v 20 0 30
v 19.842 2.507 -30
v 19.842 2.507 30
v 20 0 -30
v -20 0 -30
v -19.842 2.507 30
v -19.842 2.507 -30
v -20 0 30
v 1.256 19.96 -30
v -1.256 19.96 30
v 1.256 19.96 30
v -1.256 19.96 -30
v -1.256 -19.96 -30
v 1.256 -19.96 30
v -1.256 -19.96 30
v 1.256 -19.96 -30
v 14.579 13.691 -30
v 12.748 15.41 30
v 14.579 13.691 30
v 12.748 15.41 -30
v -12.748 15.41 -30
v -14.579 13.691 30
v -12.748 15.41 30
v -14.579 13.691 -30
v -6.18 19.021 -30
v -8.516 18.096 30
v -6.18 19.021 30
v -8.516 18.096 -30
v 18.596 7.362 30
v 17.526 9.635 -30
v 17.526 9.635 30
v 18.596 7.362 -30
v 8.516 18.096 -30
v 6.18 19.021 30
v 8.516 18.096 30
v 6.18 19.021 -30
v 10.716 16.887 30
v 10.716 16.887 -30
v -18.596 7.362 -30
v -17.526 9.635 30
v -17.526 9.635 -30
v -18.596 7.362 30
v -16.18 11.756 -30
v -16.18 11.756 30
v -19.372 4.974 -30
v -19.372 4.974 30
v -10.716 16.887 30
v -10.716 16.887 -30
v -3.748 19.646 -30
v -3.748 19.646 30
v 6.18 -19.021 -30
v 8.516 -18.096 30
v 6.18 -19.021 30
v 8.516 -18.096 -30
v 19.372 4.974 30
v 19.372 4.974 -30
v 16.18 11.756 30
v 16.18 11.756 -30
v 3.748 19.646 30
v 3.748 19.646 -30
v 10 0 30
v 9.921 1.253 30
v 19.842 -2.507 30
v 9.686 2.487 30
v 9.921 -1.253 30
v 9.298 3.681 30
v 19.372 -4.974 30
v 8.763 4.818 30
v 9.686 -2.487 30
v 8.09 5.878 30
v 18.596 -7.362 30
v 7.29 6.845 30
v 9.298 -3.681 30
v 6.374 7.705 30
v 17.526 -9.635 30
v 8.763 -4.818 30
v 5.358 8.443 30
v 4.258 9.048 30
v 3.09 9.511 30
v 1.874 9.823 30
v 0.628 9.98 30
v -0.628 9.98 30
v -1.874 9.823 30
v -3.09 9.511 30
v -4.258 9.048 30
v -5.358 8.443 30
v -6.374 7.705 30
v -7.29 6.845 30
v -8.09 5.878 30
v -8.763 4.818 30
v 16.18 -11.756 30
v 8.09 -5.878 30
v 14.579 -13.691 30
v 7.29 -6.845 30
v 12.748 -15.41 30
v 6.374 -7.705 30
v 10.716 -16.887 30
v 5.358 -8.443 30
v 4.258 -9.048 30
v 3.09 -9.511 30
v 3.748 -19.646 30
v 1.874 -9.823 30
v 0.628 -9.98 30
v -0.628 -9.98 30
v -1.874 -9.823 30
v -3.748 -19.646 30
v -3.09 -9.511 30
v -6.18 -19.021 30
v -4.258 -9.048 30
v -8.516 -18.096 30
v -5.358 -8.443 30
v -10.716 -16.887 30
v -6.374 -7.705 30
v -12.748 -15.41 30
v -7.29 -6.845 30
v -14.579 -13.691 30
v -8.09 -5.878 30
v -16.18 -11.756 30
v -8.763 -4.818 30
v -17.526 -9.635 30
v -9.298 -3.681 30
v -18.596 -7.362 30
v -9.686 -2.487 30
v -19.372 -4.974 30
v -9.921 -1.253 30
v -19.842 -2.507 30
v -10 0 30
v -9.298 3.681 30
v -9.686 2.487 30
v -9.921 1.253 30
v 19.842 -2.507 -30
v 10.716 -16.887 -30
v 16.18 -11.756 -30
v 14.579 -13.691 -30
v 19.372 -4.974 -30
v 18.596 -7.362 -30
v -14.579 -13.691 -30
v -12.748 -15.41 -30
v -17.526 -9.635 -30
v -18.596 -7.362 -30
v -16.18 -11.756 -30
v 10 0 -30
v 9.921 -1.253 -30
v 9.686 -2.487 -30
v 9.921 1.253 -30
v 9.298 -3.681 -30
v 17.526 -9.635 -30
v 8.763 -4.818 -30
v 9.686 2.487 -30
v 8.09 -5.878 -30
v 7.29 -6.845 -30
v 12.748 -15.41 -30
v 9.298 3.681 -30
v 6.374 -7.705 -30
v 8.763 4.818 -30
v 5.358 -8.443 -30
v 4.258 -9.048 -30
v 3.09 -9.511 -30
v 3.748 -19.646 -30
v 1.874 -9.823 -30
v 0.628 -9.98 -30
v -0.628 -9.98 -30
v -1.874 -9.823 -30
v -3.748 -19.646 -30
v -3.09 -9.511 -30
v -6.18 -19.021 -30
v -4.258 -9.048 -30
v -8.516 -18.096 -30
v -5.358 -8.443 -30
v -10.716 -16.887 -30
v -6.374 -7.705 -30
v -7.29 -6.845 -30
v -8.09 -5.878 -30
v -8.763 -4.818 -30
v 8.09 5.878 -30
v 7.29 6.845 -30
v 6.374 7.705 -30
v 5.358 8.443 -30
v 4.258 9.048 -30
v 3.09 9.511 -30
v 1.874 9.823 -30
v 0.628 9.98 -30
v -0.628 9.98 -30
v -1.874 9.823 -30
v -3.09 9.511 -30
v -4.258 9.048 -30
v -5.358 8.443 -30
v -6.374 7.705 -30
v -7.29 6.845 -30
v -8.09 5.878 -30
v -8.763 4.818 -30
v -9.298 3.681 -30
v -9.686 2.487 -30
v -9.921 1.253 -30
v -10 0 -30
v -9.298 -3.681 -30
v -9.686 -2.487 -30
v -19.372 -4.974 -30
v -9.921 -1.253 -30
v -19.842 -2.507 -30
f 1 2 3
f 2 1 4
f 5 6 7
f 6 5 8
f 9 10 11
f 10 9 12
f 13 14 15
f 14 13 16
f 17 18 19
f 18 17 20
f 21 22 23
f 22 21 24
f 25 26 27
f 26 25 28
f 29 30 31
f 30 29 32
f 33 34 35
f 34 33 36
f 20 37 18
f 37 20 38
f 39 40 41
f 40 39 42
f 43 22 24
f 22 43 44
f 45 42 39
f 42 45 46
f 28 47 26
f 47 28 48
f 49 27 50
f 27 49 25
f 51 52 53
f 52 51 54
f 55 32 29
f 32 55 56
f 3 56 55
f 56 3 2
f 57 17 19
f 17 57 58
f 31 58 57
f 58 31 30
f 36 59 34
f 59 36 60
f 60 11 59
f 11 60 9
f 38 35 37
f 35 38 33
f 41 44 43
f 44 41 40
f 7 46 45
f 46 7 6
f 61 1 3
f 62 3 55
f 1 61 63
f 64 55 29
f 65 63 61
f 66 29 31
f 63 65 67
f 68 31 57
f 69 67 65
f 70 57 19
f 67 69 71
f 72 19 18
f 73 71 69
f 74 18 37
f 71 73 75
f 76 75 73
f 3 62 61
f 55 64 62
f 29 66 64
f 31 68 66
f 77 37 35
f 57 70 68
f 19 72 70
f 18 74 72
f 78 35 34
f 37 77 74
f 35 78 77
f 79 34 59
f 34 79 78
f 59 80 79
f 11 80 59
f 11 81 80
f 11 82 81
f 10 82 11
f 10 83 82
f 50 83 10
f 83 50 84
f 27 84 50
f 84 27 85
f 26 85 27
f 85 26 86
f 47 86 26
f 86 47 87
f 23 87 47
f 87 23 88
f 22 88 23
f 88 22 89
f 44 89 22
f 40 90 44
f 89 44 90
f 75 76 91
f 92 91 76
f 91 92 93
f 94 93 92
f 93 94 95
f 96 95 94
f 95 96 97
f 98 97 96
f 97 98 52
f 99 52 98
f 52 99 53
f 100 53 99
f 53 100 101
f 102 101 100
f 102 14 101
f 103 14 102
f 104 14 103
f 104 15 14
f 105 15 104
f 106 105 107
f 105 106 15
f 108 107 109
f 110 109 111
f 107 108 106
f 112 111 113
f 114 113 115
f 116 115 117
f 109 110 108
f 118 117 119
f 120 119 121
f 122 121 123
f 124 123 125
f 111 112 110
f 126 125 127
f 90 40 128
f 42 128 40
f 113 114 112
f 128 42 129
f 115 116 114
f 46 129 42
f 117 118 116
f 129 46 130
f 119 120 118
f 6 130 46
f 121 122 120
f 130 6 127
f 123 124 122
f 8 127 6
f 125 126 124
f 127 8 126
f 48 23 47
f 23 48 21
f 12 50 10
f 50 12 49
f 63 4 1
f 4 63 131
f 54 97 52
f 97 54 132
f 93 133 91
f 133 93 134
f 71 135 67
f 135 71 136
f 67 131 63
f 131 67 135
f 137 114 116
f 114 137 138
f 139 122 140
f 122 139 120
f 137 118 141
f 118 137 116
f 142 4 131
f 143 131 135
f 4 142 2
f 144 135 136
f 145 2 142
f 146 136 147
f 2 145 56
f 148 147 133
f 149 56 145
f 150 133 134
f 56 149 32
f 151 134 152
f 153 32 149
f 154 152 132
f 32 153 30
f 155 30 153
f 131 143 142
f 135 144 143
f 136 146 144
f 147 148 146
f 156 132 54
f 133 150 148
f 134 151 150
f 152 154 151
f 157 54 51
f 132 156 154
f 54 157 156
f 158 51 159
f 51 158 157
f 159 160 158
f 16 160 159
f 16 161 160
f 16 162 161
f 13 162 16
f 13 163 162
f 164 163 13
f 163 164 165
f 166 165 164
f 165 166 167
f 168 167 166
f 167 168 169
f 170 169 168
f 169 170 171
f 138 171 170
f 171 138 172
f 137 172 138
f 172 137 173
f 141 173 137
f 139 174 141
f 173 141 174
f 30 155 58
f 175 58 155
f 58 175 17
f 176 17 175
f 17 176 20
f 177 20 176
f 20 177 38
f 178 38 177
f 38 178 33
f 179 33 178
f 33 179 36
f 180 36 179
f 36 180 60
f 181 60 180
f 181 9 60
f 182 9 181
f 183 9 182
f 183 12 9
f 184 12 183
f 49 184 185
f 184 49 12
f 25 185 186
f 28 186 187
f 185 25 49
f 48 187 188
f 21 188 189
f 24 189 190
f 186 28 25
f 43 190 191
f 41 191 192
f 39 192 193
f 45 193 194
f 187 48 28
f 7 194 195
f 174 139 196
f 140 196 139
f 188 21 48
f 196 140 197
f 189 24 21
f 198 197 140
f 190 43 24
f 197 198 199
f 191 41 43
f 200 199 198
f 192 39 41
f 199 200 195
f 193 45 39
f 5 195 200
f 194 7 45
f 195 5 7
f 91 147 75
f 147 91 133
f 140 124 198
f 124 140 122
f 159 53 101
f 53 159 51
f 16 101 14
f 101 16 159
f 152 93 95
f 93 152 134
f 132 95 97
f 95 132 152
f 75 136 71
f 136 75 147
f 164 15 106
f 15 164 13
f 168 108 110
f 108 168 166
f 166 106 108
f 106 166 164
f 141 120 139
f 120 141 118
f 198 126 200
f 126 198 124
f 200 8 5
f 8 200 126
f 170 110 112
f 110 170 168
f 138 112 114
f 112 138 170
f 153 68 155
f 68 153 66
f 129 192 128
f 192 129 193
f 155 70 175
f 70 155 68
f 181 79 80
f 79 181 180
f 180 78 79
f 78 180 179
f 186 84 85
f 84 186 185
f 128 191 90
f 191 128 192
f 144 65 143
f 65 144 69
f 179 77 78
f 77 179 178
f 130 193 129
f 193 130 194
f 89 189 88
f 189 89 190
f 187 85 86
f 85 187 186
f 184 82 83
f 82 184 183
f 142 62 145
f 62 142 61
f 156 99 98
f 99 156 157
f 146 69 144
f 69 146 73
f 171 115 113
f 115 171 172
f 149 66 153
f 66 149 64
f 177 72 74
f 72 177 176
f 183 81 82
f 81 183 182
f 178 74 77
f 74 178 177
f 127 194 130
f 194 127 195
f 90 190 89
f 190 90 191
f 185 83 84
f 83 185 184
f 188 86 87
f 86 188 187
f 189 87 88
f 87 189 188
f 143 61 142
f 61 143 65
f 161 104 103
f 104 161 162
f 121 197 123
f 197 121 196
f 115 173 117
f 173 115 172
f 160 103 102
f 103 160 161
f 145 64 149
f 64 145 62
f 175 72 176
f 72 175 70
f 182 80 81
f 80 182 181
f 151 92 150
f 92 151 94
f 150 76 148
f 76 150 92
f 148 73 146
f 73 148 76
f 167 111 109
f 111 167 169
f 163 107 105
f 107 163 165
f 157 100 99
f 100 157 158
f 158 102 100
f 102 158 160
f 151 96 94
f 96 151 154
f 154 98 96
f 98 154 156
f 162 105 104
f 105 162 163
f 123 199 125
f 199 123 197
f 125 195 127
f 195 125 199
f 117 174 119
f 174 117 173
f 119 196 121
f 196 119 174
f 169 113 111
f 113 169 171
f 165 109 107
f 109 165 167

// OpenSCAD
$fn = 50;


difference() {
	union() {
		translate(v = [0, 0, -30.0000000000]) {
			cylinder(h = 60, r = 20.0000000000);
		}
	}
	union() {
		translate(v = [0, 0, -100.0000000000]) {
			cylinder(h = 200, r = 10);
		}
	}
}
